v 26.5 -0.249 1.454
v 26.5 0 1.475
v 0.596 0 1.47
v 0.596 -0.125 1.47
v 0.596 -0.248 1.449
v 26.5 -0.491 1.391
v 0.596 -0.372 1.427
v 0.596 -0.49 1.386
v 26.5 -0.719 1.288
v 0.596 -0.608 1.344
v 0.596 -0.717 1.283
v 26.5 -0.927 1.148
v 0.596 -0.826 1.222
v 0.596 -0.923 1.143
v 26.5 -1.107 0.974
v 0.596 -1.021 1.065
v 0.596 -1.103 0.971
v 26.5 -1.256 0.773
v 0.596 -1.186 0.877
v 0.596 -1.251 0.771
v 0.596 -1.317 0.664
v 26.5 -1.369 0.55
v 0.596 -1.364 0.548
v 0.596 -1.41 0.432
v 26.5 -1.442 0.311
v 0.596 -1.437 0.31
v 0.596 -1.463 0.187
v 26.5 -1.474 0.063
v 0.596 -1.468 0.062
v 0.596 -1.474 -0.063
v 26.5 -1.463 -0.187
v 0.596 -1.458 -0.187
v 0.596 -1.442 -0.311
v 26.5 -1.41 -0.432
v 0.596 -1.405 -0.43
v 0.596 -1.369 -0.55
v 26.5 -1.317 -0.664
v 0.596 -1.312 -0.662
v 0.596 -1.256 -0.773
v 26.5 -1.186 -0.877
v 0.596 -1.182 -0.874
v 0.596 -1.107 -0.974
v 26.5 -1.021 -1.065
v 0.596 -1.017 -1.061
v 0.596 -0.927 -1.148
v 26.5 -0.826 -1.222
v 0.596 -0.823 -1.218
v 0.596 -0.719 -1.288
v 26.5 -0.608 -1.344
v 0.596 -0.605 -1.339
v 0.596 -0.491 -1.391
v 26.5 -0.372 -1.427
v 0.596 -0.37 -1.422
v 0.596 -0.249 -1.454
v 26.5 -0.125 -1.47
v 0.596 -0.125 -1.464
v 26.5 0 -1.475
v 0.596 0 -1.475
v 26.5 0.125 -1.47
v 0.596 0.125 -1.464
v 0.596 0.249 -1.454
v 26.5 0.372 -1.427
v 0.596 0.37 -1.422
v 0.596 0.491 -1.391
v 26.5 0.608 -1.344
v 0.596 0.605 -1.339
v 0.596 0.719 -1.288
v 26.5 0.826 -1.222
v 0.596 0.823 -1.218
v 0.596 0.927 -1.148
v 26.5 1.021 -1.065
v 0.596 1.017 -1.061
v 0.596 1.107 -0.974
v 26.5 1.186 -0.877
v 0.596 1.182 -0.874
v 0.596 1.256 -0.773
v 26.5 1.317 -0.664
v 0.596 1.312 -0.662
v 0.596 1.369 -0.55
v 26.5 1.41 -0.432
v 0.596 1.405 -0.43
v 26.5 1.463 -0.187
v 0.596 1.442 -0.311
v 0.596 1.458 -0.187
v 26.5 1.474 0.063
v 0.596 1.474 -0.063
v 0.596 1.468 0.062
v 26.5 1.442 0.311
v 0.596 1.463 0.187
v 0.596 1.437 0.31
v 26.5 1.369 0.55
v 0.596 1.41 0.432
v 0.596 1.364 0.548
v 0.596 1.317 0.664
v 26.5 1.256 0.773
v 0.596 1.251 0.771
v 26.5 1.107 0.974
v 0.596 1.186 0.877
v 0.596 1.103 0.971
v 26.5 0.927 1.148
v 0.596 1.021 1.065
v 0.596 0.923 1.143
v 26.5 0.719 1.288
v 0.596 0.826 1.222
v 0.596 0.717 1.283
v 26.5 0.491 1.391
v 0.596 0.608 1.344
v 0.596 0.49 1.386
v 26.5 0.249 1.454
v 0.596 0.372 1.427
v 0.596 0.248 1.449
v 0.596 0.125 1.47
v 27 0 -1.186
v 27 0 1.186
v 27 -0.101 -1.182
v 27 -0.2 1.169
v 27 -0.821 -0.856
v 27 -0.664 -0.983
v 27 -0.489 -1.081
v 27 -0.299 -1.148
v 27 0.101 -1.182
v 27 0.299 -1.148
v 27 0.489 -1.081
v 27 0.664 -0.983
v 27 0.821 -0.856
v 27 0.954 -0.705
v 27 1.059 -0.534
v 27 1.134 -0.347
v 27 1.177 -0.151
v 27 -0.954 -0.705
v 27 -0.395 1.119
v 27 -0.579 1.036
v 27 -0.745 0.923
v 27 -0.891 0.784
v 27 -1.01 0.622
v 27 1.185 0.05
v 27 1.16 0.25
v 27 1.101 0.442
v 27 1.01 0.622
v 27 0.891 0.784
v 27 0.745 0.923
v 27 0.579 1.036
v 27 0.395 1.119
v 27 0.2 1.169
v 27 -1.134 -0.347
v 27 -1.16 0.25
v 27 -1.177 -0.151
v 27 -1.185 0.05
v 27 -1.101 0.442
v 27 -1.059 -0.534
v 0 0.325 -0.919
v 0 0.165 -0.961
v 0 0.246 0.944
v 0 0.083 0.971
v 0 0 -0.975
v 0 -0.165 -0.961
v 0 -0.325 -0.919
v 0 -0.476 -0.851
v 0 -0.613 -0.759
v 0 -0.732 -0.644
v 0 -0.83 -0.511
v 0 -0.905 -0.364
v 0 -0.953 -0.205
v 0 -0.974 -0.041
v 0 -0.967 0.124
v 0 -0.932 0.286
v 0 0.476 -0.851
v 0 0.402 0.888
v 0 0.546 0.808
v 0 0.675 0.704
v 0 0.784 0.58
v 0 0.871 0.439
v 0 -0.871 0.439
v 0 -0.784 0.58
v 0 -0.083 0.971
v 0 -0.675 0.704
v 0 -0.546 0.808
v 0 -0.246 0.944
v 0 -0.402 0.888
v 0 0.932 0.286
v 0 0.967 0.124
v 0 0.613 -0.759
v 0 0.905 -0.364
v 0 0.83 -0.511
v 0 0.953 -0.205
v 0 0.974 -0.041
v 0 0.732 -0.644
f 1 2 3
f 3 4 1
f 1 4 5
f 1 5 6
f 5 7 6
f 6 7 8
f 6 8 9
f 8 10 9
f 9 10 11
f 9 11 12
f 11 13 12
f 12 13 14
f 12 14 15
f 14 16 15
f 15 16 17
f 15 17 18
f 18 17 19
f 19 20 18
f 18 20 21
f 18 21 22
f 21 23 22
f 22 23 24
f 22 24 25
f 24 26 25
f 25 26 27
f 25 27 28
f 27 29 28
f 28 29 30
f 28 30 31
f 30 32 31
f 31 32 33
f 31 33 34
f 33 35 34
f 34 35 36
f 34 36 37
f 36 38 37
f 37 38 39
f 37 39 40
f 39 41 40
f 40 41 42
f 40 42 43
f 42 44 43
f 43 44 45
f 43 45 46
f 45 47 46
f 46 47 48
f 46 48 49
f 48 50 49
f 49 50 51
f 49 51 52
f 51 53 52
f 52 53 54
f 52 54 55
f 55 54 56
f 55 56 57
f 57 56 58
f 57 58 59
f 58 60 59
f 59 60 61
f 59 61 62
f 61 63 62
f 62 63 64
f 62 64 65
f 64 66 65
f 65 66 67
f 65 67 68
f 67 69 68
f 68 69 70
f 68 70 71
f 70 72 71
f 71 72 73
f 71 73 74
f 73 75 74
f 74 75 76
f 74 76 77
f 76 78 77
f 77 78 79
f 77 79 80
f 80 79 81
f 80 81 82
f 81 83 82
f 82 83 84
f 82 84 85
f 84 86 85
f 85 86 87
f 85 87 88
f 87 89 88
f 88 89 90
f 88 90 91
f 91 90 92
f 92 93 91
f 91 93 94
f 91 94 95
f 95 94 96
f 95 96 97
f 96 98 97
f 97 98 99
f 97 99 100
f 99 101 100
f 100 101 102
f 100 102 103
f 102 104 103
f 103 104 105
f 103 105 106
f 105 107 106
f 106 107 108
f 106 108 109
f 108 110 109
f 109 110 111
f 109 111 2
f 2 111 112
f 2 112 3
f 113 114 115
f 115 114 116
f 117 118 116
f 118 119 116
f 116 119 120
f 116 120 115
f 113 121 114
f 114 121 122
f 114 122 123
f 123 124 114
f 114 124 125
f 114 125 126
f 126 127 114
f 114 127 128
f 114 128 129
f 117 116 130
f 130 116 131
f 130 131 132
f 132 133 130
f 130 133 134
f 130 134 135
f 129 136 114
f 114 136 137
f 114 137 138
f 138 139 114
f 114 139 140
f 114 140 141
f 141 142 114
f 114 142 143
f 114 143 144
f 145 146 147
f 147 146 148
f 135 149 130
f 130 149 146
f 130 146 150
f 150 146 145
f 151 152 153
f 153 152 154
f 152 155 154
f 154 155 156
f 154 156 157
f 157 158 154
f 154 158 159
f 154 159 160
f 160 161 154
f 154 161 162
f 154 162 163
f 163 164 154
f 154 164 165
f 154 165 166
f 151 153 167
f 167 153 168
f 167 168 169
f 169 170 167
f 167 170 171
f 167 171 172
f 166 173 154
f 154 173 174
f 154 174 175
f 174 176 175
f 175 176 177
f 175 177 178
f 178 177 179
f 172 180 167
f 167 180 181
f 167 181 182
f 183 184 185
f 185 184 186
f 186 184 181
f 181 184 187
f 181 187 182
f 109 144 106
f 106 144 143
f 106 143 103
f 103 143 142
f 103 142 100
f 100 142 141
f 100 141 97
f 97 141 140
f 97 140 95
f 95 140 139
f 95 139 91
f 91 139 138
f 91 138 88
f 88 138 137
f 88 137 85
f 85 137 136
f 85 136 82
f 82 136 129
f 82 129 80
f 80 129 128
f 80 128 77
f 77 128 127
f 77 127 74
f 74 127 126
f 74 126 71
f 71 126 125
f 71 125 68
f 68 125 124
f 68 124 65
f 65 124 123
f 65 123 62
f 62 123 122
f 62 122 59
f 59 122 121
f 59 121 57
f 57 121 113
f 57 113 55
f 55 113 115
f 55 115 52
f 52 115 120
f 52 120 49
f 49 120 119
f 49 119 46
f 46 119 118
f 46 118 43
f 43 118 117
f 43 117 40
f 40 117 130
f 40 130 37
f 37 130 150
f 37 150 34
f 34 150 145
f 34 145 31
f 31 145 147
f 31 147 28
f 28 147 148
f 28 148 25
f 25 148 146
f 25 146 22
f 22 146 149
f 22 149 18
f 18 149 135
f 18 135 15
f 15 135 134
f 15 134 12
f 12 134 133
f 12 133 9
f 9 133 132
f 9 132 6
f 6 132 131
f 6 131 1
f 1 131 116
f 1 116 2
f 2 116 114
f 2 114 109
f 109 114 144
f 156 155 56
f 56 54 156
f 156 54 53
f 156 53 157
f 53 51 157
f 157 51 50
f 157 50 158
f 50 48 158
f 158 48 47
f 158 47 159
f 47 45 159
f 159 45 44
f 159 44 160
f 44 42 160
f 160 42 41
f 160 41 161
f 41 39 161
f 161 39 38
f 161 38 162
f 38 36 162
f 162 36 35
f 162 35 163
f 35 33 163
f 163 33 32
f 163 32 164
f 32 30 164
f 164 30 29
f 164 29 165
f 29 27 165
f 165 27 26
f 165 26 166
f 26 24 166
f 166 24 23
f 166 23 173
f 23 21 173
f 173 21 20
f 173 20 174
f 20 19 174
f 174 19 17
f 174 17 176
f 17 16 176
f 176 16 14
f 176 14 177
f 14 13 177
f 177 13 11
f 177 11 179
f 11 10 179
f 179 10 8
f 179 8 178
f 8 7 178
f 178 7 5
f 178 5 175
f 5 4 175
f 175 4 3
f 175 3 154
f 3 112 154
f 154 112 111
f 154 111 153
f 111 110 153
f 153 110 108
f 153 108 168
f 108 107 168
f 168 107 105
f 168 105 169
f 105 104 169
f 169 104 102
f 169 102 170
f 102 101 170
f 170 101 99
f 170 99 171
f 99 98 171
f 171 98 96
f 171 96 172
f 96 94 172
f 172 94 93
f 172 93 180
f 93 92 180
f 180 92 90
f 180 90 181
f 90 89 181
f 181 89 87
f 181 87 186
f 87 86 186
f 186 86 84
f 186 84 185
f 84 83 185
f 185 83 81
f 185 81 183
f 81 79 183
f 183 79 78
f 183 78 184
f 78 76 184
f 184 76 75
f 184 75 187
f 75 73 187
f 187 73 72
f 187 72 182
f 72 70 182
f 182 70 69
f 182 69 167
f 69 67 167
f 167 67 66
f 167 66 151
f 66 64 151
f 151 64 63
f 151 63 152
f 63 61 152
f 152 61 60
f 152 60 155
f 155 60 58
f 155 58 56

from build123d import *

# Parameters (mm, degrees)
CROQUIS1_R              = 1.475
SALIENTE_EXTRUIR1_DEPTH = 27
CHAFL_N1_SIZE           = 0.5
CHAFL_N1_SIZE2          = 0.288675135
CHAFL_N7_SIZE           = 0.5
CHAFL_N7_SIZE2          = 0.595876796


with BuildPart() as part:
    # Croquis1 → Saliente-Extruir1 (new body)
    with BuildSketch(Plane(origin=(0, 0, 0), x_dir=(0, 0, -1), z_dir=(1, 0, 0))):
        Circle(CROQUIS1_R)
    extrude(amount=SALIENTE_EXTRUIR1_DEPTH)

    # Chaflán1
    chafl_n1_edges = [part.edges().sort_by_distance(p)[0] for p in [
        (27, 0, 1.475),
    ]]
    chafl_n1_side = [part.faces().sort_by_distance(p)[0] for p in [
        (13.5, 0, 1.475),
    ]]
    chamfer(chafl_n1_edges, length=CHAFL_N1_SIZE, length2=CHAFL_N1_SIZE2, reference=chafl_n1_side[0])

    # Chaflán7
    chafl_n7_edges = [part.edges().sort_by_distance(p)[0] for p in [
        (0, 0, 1.475),
    ]]
    chafl_n7_side = [part.faces().sort_by_distance(p)[0] for p in [
        (0, 0, 0),
    ]]
    chamfer(chafl_n7_edges, length=CHAFL_N7_SIZE, length2=CHAFL_N7_SIZE2, reference=chafl_n7_side[0])


solid = part.part
